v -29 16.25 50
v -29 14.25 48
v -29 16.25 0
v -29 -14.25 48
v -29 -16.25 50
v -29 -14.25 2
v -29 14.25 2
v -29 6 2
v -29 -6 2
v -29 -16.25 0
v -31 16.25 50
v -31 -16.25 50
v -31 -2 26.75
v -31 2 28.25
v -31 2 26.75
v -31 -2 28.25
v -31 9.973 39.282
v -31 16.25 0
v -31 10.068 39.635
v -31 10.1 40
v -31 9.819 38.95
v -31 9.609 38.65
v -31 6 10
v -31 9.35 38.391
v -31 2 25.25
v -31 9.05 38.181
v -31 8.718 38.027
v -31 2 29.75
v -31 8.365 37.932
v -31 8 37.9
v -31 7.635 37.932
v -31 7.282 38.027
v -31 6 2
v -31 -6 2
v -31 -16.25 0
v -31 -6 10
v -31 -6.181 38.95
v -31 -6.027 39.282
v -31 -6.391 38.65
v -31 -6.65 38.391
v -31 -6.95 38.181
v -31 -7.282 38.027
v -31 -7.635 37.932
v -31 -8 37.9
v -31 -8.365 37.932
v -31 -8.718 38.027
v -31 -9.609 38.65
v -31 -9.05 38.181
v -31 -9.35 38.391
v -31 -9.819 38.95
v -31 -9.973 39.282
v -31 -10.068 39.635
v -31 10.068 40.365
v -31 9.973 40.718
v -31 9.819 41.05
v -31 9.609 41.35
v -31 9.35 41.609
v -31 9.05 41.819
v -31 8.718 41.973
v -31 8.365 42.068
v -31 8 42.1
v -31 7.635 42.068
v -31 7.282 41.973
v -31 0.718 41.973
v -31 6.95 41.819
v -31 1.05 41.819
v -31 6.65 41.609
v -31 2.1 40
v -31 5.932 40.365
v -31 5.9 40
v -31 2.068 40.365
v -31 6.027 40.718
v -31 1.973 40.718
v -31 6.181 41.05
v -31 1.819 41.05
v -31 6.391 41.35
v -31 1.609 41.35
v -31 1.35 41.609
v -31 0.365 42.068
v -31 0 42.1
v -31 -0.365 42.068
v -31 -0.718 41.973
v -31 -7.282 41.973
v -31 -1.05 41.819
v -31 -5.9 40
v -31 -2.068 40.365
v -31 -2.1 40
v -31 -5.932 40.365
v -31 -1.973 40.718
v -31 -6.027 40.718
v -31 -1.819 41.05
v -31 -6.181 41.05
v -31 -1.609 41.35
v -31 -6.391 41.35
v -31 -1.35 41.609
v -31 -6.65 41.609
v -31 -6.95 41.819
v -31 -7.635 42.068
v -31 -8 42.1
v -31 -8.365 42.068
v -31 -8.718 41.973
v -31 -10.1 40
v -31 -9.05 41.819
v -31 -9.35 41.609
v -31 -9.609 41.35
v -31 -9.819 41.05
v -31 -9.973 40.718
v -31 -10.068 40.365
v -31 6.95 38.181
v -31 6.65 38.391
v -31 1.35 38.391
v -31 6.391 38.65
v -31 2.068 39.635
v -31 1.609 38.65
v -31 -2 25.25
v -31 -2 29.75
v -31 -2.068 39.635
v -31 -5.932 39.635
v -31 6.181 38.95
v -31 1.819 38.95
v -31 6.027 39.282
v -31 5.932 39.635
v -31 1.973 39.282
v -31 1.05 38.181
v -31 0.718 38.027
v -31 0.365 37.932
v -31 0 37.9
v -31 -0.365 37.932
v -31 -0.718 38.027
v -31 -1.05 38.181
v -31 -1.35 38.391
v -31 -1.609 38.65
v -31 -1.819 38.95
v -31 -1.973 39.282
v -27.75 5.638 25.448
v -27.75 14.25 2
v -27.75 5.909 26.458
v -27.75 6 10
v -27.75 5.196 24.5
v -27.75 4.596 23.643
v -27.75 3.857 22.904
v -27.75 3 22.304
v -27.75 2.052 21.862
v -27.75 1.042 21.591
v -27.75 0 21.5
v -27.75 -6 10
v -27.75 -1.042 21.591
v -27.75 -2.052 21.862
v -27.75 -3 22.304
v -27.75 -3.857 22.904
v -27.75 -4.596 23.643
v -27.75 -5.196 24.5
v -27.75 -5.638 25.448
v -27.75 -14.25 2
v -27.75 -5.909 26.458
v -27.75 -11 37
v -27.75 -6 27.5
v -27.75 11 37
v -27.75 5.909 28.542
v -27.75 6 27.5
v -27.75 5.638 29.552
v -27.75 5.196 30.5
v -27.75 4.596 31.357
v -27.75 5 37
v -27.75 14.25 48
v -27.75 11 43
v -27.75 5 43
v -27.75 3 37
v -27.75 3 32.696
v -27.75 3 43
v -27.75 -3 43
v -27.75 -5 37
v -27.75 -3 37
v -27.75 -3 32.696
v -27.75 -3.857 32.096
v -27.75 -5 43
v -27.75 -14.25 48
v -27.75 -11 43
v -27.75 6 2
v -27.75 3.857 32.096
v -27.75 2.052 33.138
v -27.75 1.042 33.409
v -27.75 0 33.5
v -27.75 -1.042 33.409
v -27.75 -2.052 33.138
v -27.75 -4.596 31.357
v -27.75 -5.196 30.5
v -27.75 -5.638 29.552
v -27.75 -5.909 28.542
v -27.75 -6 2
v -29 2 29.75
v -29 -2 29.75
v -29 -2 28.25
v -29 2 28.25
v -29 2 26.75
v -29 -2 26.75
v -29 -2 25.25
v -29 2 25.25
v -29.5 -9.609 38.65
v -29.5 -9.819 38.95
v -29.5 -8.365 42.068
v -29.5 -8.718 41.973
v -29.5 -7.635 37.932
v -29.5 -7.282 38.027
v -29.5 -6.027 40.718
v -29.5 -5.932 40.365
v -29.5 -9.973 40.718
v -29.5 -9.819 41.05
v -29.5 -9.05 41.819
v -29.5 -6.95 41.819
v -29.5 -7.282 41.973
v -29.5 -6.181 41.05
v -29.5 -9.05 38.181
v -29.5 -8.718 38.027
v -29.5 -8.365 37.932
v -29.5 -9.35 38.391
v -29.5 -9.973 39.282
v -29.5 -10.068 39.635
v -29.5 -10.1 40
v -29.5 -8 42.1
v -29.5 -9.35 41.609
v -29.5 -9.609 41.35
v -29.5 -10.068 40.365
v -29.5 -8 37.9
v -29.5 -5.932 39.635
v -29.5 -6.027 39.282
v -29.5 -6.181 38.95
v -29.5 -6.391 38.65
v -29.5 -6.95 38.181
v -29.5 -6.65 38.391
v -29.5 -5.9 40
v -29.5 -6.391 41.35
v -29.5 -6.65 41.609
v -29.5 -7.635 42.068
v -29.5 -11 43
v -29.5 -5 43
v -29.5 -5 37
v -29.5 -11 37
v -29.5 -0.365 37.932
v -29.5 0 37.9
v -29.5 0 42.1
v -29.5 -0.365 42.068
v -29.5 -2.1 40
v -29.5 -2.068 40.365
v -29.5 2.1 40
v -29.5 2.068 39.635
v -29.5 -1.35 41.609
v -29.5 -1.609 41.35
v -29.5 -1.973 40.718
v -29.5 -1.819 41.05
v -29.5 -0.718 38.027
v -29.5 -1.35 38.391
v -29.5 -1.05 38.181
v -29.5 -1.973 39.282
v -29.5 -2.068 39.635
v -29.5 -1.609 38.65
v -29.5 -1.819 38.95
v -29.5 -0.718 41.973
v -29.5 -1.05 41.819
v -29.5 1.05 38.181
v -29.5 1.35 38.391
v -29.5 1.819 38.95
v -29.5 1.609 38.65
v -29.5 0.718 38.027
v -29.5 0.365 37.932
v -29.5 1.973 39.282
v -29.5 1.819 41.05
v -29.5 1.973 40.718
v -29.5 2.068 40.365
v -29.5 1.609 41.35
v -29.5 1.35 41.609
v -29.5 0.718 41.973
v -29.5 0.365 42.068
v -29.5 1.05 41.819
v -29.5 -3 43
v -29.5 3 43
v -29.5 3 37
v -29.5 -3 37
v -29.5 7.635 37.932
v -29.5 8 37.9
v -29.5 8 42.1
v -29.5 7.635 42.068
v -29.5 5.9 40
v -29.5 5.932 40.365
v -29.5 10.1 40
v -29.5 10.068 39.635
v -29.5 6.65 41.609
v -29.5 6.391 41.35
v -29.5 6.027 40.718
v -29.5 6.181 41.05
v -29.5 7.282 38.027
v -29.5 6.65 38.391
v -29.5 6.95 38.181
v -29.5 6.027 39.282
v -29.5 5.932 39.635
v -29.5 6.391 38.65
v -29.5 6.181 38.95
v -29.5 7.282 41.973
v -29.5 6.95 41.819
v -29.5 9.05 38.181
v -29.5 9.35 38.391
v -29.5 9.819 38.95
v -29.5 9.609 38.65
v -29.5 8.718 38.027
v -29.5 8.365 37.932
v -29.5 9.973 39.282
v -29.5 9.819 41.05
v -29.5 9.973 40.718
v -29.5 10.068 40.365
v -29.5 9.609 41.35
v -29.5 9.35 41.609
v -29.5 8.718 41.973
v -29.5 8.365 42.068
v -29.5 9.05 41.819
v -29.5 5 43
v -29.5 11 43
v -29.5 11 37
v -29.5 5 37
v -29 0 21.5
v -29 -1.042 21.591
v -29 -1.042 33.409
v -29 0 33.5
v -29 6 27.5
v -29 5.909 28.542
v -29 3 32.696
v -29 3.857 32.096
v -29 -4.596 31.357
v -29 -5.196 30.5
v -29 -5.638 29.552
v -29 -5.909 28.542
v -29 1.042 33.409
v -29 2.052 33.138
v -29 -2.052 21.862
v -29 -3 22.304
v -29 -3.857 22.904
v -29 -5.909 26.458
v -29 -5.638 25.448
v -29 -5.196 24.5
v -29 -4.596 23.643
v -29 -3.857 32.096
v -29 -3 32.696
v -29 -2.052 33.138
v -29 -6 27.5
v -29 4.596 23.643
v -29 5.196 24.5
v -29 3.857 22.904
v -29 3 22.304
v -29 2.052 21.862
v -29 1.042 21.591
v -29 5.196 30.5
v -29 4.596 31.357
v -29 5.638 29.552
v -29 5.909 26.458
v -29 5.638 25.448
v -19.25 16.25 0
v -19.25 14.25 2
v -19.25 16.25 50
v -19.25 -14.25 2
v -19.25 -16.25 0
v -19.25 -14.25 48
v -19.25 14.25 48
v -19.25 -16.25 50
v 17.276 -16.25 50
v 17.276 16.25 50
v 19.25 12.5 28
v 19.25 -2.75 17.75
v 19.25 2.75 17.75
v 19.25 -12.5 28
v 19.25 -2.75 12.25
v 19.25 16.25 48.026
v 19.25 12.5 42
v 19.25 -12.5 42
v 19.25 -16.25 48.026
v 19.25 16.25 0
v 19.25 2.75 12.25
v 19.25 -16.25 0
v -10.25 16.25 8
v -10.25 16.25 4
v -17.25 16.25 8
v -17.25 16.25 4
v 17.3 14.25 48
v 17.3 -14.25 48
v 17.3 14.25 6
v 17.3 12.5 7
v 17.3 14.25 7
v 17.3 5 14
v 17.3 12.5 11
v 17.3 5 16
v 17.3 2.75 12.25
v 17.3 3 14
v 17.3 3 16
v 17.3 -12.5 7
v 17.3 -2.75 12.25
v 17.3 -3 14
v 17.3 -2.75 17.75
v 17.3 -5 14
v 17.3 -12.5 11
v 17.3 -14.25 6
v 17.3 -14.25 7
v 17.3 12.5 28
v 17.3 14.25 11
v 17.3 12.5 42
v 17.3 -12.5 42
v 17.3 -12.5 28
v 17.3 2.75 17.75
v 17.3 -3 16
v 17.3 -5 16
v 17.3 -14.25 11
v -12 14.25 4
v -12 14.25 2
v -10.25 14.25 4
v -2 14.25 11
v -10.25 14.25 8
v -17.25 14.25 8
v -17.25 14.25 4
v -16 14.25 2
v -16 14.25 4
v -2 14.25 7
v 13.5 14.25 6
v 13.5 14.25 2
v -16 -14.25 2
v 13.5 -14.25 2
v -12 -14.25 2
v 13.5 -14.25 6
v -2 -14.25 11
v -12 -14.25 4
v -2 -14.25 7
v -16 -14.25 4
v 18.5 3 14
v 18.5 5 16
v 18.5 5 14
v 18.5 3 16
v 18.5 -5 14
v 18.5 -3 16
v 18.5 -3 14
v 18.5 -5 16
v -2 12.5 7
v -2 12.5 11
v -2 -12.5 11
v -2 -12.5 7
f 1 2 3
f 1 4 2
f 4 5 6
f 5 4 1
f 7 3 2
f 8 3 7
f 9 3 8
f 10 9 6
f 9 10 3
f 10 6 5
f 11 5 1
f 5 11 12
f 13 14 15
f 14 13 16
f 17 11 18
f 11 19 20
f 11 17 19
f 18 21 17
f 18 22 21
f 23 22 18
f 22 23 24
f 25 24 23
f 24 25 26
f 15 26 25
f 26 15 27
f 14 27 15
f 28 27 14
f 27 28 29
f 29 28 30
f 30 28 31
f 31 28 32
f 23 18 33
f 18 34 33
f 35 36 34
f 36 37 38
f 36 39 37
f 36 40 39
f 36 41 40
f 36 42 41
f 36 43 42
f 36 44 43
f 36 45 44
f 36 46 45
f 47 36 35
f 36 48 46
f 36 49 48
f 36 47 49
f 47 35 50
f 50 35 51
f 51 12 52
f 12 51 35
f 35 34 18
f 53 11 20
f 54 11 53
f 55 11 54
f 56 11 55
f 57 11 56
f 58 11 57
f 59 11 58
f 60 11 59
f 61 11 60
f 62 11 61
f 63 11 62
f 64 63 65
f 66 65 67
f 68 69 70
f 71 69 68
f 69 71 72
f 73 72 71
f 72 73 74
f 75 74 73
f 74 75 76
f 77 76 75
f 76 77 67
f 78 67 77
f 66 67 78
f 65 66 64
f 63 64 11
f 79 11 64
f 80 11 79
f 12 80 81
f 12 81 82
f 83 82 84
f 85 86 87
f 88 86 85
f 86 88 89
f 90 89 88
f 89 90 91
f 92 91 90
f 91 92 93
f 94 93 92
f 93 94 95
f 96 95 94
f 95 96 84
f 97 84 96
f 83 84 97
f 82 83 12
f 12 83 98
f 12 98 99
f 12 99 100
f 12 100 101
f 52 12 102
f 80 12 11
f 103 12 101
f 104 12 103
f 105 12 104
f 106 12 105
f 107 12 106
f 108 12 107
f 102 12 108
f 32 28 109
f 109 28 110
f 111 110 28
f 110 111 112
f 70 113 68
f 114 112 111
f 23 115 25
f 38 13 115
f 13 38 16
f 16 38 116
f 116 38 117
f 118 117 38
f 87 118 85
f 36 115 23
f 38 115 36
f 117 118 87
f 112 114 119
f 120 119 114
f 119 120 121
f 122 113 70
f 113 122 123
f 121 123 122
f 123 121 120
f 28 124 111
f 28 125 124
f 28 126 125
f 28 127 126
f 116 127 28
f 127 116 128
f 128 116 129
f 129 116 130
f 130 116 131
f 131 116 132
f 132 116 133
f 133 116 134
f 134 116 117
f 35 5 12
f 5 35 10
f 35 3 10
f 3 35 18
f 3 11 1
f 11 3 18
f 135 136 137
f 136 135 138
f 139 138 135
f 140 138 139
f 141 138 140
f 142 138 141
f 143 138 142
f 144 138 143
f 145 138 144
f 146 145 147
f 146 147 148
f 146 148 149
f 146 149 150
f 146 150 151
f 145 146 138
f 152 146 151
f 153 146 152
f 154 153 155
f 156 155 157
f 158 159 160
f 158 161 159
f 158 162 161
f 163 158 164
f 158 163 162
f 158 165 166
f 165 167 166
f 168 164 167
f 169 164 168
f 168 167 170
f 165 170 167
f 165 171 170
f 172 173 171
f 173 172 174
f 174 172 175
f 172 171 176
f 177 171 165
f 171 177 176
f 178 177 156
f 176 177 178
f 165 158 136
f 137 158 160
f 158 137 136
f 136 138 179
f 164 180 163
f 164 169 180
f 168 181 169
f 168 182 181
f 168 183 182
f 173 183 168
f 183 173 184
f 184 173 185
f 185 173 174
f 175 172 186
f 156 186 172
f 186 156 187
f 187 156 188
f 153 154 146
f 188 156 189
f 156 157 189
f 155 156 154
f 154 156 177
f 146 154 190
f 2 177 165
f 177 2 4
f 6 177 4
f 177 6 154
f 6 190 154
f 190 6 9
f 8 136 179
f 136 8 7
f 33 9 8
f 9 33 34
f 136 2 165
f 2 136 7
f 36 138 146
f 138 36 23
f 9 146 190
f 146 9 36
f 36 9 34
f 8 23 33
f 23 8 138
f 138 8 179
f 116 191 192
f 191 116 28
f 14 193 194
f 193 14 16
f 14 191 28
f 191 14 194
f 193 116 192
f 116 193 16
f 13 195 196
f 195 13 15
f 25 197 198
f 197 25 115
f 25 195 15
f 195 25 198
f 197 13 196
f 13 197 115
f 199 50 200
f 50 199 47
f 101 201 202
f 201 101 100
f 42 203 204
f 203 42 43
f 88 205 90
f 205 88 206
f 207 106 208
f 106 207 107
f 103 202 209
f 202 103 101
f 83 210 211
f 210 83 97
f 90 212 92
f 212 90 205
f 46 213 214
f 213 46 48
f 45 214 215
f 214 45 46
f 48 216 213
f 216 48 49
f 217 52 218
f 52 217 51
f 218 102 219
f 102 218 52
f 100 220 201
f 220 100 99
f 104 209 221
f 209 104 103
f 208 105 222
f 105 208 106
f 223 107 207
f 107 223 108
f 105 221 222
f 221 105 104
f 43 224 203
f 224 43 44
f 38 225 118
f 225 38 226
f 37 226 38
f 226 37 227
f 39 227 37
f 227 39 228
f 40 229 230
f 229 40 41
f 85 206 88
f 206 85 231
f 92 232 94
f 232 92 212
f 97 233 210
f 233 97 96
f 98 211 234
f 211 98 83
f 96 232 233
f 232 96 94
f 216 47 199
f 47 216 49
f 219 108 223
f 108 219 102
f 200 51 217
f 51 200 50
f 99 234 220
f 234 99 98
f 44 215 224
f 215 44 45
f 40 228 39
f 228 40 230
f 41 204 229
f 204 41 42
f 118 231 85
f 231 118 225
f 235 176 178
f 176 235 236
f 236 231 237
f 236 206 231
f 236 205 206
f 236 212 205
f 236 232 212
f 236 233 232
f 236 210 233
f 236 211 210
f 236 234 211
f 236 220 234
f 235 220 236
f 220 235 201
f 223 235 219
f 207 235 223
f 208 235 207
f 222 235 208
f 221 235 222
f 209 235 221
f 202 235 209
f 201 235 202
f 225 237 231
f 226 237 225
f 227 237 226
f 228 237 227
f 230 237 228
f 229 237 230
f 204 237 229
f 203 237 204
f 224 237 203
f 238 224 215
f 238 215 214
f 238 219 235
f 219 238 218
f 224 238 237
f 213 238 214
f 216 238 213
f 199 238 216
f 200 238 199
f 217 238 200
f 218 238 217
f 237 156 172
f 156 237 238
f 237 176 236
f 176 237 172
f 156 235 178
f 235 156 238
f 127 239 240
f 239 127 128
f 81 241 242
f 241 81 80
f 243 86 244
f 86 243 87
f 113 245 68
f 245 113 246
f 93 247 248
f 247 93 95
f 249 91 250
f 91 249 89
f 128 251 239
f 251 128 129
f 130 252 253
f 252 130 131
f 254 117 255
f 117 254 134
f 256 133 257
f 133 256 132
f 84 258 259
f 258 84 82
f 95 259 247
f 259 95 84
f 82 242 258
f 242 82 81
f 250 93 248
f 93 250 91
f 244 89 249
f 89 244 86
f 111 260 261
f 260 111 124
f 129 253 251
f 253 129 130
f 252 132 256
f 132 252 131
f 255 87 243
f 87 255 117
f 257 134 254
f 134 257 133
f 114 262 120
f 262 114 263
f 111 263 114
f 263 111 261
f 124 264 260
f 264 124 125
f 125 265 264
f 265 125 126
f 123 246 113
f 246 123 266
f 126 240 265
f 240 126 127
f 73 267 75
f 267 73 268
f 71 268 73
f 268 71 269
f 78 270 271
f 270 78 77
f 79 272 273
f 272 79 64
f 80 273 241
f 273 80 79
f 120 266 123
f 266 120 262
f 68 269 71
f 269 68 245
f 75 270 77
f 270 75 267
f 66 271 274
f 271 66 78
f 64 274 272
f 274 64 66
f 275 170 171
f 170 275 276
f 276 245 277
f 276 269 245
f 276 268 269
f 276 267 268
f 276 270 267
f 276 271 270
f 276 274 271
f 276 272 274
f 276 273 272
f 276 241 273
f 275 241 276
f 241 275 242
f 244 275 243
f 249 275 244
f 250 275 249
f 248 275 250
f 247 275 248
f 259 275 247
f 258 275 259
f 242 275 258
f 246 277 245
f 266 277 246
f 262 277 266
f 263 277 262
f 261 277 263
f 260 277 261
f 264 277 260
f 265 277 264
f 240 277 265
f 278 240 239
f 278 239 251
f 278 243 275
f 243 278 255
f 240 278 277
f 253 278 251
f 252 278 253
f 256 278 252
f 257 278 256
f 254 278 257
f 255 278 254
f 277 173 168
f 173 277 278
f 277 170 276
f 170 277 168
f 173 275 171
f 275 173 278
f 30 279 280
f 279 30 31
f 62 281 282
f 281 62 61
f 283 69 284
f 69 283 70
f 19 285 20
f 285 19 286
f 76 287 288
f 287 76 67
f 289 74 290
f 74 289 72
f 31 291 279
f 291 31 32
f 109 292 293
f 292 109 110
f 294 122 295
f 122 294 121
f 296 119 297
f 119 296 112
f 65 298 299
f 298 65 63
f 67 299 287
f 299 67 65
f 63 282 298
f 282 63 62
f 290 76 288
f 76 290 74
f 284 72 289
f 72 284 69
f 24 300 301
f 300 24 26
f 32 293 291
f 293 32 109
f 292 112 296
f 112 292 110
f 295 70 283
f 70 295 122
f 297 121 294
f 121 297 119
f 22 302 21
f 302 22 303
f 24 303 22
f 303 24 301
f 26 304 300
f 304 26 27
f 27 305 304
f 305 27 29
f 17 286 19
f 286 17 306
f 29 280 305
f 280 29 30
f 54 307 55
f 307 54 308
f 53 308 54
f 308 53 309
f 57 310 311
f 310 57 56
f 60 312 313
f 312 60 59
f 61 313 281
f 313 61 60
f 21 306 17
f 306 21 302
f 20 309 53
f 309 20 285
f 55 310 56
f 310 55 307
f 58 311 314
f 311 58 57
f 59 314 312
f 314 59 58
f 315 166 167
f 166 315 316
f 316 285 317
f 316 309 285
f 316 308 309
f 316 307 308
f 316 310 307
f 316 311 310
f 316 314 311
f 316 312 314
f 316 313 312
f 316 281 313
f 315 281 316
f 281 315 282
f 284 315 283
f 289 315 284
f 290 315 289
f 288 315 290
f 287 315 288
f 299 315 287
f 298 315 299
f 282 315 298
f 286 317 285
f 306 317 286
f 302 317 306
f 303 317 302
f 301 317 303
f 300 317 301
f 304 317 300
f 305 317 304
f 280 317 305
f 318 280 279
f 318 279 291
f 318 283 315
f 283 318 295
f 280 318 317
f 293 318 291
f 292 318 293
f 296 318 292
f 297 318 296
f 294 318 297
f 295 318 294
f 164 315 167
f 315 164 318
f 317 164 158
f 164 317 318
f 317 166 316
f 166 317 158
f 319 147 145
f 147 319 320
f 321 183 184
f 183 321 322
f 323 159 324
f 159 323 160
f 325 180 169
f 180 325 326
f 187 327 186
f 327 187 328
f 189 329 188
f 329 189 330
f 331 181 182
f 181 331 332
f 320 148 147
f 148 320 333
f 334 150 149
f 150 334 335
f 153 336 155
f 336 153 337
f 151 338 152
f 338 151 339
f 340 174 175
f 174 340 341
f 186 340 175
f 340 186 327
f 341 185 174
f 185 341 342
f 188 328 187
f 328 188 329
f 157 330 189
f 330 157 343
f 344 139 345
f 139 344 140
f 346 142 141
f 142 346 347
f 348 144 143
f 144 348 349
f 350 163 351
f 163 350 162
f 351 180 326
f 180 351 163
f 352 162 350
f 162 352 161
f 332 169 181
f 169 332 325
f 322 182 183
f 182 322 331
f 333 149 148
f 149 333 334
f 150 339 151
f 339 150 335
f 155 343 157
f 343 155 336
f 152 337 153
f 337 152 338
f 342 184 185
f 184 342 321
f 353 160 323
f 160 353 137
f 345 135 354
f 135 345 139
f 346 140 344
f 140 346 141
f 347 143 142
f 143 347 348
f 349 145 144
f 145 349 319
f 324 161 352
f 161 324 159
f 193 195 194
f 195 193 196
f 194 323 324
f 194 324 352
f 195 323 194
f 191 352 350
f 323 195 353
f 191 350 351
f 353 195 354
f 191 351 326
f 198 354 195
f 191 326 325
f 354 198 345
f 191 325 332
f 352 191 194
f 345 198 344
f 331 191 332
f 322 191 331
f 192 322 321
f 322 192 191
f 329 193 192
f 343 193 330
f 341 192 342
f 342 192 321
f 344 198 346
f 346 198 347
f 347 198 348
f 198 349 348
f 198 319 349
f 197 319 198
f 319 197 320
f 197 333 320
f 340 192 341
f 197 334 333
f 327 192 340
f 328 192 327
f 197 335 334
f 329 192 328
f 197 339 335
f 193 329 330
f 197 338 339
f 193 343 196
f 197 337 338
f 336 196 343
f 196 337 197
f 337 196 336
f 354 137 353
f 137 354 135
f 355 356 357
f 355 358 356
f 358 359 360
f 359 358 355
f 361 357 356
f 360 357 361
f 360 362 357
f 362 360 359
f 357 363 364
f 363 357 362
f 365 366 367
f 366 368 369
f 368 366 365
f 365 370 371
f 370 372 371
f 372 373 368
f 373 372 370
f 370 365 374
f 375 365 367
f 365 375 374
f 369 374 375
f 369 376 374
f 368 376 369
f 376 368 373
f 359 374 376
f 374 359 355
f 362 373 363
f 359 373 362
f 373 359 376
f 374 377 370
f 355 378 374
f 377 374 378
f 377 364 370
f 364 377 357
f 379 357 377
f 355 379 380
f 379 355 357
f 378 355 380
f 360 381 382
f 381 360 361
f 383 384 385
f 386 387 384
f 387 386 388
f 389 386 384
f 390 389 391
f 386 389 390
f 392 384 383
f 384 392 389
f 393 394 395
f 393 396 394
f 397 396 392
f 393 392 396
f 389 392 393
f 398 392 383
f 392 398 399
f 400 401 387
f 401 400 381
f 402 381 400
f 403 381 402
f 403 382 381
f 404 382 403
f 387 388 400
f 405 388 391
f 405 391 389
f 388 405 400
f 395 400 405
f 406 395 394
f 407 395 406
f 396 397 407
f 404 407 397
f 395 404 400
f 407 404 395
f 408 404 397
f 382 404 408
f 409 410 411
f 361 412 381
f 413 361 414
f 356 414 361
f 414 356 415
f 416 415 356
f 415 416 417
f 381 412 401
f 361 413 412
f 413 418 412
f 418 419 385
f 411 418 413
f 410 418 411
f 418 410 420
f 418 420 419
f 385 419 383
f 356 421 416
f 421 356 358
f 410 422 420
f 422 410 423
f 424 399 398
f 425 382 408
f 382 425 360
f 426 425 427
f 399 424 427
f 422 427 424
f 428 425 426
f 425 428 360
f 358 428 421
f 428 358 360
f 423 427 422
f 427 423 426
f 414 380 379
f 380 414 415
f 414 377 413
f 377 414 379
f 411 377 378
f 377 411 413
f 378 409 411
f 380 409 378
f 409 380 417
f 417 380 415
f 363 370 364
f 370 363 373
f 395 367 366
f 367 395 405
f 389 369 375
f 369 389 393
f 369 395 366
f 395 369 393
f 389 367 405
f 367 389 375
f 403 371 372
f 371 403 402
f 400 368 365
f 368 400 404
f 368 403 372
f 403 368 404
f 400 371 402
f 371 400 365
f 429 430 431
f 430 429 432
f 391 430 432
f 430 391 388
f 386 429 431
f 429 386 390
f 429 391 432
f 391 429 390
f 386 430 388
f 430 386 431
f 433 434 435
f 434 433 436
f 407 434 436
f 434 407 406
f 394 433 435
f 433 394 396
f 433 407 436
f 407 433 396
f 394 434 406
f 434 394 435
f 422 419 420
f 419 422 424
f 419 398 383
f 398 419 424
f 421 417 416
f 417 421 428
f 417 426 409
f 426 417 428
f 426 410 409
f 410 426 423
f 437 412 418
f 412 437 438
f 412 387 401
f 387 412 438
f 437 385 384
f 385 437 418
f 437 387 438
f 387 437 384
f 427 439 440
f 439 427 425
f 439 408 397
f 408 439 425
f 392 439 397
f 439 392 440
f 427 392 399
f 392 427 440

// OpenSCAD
/* [Height] */

// Final height of the stack walls.
height = 50.0;

// ---------------------------------------------------------------------------------------------------------
// do not need to modify anything below here
// ---------------------------------------------------------------------------------------------------------
/* [Hidden] */

thickness = 2.0;
fudge = 0.1;

width = 38.5;
depth = 32.50;
 
cavity_width = width - thickness;
cavity_depth = depth - (2 * thickness);
cavity_height = height - (2 * thickness);

hole_diameter = 7.0;

slit_width = 4.0;
slit_height = 23.0;

// lid
rotate([0, 0, 180])
difference() {   
    union() {
        translate([30, 0, height / 2.0]) cube([2, depth, height], center = true);
        translate([28.5, 0, height / 2.0]) cube([1.5, cavity_depth, cavity_height], center = true);
    }
    translate([27, -6, 2]) cube([5, 12, 8]);
    
    translate([29, 0, 29]) rotate([0, 90, 0]) cube([1.5, 4, 5], center = true);
    translate([29, 0, 26]) rotate([0, 90, 0]) cube([1.5, 4, 5], center = true);

    translate([30, 8, 40]) rotate([0, 90, 0]) cylinder(h = 5, r1 = 2.1, r2 = 2.1, $fn=36, center = true);
    translate([28.5, 8, 40]) rotate([0, 0, 0]) cube([2, 6, 6], center = true);
    translate([30, 0, 40]) rotate([0, 90, 0]) cylinder(h = 5, r1 = 2.1, r2 = 2.1, $fn=36, center = true);
    translate([28.5, 0, 40]) rotate([0, 0, 0]) cube([2, 6, 6], center = true);
    translate([30, -8, 40]) rotate([0, 90, 0]) cylinder(h = 5, r1 = 2.1, r2 = 2.1, $fn=36, center = true);
    translate([28.5, -8, 40]) rotate([0, 0, 0]) cube([2, 6, 6], center = true);

    translate([26.5, 0, 27.5]) rotate([0, 90, 0]) cylinder(h = 5, r1 = 6, r2 = 6, $fn=36, center = true);

}


// base

//rotate([0, 0, 180])
union() {
    translate([13.5, -(cavity_depth / 2.0), 2]) cube([4.0, cavity_depth, 4.0]);
    translate([-16, -(cavity_depth / 2.0), 2]) cube([4.0, cavity_depth, 2.0]);    
    translate([-2, 12.5, 7]) cube([20.0, 2, 4.0]);    
    translate([-2, -14.5, 7]) cube([20.0, 2, 4.0]);    
    difference () {
        translate([0, 0, height / 2.0]) cube([width, depth, height], center = true); 
        translate([-1, 0, (cavity_height / 2.0) + thickness]) cube([cavity_width + fudge, cavity_depth, cavity_height], center = true);
        translate([-17.25, 13.0, 4]) cube([7, 5, 4]);         
        translate([22, 0, 72.5]) rotate([0, -45,0]) cube([width, depth + 2, 31], center = true);

        translate([18, 0, 15]) rotate([0, 90, 0]) cube([5.5,5.5,5.5], center = true);
        translate([18, 0, 35]) rotate([0, 90, 0]) cube([14, 25,3], center = true);

        translate([17.5, 4, 15]) rotate([0, 90, 0]) cube([2,2,2], center = true);
        translate([17.5, -4, 15]) rotate([0, 90, 0]) cube([2,2,2], center = true);
        
        translate([-18, 0, 29]) rotate([0, 90, 0]) cube([1.5, 4, 3], center = true);
        translate([-18, 0, 26]) rotate([0, 90, 0]) cube([1.5, 4, 3], center = true);
        
        translate([-18, 10, 40]) rotate([0, 90, 0]) cylinder(h = 3, r1 = 2.1, r2 = 2.1, $fn=36, center = true);
        translate([-18, 0, 40]) rotate([0, 90, 0]) cylinder(h = 3, r1 = 2.1, r2 = 2.1, $fn=36, center = true);
        translate([-18, -10, 40]) rotate([0, 90, 0]) cylinder(h = 3, r1 = 2.1, r2 = 2.1, $fn=36, center = true);
        
    }    
        
}
